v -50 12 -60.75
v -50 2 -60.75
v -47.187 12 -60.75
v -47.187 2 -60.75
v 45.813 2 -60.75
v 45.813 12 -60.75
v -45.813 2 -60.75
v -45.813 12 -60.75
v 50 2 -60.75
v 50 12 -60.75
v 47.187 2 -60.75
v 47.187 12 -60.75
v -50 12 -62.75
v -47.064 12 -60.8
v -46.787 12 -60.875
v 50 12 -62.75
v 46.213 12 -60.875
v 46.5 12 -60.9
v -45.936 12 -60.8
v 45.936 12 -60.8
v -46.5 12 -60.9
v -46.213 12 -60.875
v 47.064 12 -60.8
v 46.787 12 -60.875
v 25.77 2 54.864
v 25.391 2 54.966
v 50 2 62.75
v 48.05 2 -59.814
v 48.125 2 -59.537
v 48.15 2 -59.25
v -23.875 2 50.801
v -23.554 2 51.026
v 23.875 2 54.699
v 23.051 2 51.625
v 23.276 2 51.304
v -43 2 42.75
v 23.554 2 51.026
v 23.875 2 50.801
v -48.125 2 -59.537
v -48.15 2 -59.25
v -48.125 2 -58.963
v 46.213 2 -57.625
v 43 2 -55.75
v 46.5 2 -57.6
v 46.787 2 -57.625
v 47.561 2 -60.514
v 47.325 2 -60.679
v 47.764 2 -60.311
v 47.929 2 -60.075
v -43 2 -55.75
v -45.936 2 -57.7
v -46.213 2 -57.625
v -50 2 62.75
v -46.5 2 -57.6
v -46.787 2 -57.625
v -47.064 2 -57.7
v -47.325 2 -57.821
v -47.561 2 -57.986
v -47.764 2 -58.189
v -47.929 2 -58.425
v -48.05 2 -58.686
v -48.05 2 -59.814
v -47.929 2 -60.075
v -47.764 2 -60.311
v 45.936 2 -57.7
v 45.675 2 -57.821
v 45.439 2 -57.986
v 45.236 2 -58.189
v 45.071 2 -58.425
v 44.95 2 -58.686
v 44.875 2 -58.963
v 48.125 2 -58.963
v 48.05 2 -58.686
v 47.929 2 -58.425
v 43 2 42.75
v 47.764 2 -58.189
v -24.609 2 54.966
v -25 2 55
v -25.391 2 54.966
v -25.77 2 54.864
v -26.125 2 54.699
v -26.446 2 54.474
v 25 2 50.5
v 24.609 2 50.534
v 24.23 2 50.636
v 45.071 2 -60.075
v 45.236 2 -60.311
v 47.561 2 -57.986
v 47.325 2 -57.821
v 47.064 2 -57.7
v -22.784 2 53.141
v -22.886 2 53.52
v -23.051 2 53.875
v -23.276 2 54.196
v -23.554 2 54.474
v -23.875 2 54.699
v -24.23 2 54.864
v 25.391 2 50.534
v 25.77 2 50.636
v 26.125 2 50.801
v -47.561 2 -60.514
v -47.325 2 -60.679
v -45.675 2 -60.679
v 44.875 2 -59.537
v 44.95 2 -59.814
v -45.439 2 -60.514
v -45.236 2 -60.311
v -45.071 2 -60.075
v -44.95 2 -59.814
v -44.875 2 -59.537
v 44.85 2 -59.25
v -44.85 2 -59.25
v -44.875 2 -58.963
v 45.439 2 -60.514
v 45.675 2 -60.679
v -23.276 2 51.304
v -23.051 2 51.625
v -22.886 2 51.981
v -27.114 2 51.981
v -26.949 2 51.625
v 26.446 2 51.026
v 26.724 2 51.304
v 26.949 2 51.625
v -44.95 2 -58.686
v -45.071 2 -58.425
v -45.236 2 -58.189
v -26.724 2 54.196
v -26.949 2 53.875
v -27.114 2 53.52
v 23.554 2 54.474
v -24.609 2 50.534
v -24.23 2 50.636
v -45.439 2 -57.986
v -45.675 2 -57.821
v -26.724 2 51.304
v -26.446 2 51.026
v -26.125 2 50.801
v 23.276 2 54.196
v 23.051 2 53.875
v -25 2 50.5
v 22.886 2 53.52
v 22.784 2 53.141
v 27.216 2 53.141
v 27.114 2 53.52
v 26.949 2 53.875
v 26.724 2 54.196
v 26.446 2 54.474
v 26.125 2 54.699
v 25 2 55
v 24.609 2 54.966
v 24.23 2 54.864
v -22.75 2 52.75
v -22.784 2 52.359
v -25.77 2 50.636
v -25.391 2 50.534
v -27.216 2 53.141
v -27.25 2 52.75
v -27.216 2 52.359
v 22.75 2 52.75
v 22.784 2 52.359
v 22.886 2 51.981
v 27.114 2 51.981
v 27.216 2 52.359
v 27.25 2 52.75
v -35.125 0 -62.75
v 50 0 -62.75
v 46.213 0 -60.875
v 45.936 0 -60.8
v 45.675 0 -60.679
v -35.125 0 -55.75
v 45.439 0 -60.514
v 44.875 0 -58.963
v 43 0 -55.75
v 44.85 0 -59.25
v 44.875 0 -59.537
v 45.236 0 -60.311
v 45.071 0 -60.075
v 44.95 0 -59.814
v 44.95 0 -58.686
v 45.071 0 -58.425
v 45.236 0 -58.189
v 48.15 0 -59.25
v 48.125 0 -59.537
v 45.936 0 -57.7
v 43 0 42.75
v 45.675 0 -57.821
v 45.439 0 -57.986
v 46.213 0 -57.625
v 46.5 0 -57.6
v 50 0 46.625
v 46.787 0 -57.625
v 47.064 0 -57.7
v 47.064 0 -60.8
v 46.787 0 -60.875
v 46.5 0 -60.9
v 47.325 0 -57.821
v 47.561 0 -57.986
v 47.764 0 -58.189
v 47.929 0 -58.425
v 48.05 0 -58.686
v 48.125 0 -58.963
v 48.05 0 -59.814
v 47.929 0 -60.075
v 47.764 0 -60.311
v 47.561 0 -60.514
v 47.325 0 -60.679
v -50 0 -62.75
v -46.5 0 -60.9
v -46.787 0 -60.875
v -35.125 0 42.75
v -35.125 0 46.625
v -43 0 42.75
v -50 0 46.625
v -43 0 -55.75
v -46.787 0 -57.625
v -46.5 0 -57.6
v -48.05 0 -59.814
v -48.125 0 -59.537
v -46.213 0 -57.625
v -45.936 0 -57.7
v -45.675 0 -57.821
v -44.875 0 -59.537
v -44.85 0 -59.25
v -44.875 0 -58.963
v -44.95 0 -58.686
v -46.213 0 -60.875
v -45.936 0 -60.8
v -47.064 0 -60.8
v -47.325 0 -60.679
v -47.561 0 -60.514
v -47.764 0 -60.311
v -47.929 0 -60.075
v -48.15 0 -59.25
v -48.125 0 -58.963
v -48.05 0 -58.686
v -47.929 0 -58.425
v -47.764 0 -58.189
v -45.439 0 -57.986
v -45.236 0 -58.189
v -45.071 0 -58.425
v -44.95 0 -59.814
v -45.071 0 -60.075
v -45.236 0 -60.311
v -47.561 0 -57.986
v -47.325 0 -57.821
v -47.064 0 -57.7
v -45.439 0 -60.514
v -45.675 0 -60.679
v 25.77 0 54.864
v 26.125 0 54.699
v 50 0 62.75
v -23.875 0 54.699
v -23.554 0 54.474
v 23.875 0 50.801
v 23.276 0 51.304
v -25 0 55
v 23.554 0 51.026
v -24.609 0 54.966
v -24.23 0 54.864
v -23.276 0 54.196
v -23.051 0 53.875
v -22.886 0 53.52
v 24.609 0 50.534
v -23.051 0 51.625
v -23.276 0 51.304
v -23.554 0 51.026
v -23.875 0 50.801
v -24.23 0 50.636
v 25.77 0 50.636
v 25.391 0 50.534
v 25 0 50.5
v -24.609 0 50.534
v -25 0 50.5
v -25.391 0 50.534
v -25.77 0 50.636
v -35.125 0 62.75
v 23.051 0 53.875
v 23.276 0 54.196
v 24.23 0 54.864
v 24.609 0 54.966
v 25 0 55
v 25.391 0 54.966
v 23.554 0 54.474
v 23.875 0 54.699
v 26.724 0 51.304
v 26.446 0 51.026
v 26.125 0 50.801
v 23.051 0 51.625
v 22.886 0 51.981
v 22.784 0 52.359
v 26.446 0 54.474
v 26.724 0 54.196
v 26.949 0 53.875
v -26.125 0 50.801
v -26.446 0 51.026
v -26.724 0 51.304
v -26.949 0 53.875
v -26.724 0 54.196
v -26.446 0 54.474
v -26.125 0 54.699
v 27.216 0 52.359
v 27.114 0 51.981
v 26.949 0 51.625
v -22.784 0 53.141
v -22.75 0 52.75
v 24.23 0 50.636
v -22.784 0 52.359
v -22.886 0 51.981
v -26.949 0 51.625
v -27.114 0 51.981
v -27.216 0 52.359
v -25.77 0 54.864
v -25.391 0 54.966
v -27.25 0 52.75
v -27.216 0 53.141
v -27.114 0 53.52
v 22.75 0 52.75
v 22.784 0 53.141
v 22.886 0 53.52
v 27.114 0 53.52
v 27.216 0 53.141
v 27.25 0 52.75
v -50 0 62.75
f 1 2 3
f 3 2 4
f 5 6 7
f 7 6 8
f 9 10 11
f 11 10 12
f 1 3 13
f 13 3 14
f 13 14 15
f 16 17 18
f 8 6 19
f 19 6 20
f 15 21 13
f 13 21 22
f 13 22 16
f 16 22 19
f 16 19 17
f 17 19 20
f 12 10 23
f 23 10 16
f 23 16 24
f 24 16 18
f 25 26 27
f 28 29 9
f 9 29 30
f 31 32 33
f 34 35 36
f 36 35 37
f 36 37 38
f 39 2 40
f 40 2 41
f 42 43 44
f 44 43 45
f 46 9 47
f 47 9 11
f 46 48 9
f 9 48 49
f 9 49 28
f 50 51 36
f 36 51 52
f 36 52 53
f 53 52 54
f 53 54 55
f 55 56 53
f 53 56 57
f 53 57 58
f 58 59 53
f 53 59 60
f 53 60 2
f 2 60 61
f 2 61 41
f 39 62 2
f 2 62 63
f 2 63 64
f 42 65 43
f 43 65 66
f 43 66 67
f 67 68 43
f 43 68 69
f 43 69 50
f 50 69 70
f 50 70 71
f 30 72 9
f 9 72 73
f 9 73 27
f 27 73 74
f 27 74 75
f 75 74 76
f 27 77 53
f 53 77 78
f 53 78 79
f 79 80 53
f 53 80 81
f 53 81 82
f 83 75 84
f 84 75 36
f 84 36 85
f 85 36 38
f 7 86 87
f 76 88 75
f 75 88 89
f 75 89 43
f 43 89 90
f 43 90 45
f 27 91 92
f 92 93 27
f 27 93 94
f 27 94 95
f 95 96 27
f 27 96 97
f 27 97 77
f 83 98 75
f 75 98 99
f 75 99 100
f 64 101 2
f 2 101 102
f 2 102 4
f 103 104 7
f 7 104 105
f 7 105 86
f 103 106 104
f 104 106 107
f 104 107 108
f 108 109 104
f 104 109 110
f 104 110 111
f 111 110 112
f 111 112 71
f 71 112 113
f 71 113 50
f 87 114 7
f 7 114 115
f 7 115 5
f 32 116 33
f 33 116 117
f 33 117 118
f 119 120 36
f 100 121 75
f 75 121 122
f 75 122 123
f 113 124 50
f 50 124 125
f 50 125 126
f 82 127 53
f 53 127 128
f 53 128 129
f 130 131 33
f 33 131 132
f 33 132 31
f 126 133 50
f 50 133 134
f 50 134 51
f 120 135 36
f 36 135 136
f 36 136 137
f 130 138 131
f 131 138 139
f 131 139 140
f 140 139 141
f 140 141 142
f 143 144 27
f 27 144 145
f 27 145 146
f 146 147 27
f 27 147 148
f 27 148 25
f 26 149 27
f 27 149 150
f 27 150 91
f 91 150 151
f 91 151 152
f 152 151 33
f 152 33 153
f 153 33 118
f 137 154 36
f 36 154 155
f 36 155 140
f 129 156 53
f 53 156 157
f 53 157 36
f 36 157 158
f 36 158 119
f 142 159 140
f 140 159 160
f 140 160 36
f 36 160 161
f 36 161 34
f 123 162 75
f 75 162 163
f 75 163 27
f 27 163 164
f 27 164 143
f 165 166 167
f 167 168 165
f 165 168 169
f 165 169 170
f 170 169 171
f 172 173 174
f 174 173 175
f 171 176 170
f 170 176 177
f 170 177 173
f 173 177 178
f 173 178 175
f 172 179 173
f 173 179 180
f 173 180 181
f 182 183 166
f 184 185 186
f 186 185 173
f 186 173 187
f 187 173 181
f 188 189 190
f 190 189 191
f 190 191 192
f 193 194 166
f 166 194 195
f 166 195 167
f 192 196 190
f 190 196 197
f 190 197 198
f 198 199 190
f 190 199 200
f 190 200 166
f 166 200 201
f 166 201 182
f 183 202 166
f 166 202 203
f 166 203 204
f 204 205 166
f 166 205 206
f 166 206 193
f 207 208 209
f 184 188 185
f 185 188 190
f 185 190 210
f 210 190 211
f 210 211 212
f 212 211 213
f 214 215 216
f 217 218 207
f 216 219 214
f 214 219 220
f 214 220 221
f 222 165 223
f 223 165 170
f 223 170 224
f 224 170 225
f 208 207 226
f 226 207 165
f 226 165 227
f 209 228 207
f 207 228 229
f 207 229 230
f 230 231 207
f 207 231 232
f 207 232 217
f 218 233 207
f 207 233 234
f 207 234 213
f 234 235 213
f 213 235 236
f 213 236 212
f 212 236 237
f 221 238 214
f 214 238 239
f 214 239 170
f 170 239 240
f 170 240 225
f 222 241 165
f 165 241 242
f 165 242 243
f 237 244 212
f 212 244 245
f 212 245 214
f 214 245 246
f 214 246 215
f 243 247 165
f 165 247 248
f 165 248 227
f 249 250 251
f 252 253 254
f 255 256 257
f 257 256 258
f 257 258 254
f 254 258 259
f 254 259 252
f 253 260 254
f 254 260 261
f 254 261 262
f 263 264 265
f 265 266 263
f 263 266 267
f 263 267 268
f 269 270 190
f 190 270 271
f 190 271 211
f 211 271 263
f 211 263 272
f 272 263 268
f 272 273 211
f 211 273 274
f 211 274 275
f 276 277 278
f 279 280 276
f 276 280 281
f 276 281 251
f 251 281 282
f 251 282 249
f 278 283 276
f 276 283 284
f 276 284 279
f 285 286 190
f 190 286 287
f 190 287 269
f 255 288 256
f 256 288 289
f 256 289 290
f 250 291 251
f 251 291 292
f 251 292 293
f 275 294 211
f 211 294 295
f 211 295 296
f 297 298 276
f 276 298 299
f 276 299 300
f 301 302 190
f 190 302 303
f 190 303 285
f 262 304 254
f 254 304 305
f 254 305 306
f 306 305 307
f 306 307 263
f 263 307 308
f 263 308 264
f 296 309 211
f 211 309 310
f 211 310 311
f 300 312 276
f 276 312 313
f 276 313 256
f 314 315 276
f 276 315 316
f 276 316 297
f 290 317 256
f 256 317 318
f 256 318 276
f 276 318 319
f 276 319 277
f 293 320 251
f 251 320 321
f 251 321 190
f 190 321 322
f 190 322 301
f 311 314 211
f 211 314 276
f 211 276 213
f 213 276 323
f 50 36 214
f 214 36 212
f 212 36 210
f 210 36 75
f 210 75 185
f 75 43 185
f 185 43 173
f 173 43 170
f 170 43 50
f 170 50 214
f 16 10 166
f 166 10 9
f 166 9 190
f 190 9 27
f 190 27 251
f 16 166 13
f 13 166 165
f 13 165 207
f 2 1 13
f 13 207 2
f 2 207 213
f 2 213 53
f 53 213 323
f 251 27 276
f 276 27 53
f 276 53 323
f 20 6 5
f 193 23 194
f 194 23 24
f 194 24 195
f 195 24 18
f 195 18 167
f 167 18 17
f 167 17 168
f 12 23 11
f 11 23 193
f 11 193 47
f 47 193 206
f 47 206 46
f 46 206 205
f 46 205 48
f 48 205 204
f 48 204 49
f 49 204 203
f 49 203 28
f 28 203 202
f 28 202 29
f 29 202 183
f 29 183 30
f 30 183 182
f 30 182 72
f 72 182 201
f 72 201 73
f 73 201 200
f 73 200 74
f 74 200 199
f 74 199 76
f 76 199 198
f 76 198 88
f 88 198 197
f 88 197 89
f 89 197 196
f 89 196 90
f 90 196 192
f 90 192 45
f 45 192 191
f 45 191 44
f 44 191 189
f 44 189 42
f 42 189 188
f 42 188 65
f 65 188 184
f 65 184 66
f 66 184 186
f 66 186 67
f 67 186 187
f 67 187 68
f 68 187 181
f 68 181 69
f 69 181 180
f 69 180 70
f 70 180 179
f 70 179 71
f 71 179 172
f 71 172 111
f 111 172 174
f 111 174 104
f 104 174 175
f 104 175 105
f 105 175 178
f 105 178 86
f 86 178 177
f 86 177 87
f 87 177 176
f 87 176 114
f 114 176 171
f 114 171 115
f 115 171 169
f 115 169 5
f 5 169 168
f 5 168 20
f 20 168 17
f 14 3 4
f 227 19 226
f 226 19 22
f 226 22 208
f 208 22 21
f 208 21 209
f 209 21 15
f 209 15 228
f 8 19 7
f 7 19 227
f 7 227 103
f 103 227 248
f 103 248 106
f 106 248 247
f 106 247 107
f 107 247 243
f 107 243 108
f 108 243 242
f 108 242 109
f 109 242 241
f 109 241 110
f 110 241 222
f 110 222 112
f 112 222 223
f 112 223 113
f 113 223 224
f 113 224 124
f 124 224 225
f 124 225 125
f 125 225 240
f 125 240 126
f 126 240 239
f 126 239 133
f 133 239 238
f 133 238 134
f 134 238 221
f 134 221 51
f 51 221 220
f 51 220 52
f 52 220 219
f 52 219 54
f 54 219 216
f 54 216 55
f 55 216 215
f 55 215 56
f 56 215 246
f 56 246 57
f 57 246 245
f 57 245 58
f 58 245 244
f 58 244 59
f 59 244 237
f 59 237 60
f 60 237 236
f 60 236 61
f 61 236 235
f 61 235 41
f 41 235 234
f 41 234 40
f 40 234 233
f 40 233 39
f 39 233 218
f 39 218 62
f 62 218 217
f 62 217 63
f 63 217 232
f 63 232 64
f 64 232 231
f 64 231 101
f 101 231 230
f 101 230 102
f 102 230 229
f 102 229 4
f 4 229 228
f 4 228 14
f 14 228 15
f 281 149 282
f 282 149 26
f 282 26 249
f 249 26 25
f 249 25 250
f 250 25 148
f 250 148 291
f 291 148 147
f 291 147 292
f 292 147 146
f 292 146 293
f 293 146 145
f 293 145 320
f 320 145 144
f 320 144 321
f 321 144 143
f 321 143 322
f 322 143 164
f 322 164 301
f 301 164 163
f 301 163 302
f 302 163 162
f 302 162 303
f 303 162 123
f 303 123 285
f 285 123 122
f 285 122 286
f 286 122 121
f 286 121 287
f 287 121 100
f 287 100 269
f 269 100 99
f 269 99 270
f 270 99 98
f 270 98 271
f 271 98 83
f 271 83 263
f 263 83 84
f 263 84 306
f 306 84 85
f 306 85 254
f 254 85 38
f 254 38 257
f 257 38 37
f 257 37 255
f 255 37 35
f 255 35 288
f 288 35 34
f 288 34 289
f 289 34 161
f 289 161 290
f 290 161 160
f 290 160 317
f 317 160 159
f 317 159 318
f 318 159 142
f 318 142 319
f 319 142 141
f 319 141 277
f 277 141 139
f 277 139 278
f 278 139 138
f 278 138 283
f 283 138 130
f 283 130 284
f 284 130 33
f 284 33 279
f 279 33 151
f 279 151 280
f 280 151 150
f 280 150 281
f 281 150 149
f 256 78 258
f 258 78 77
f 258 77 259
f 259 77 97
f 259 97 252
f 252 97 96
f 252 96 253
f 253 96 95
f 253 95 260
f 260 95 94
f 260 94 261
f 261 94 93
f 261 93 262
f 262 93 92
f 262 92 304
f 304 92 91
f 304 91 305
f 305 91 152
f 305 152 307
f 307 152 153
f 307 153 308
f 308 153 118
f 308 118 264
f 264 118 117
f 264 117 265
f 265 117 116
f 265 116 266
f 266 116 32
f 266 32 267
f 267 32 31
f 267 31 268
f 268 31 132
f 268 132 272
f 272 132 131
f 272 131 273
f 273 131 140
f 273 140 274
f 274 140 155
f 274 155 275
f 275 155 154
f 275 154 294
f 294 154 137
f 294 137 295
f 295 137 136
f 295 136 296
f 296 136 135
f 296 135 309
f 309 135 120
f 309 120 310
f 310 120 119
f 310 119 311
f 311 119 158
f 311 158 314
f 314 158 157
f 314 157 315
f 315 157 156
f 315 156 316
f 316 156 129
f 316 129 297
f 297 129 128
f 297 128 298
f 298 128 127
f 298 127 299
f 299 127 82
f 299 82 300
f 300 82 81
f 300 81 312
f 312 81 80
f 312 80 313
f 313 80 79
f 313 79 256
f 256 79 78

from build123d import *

# Parameters (mm, degrees)
SKETCH1_W                      = 96
SKETCH1_H                      = 121.5
SKETCH1_W_2                    = 86
SKETCH1_H_2                    = 98.5
BOSS_EXTRUDE1_DEPTH            = 2
SKETCH2_W                      = 100
SKETCH2_H                      = 125.5
SKETCH2_W_2                    = 96
SKETCH2_H_2                    = 121.5
BOSS_EXTRUDE2_DEPTH            = 2
SKETCH8_W                      = 100
SKETCH8_H                      = 2
BOSS_EXTRUDE6_DEPTH            = 10
CUT_EXTRUDE1_REACH             = 14
SKETCH3_R                      = 2.25
SKETCH3_R_2                    = 1.65
CUT_EXTRUDE1_DIRECTION_2_DEPTH = 1


with BuildPart() as part:
    # Sketch1 → Boss-Extrude1 (new body)
    with BuildSketch(Plane(origin=(0, 0, 0), x_dir=(1, 0, 0), z_dir=(0, 1, 0))):
        Rectangle(SKETCH1_W, SKETCH1_H)
        with Locations((0, 6.5)):
            Rectangle(SKETCH1_W_2, SKETCH1_H_2, mode=Mode.SUBTRACT)
    extrude(amount=BOSS_EXTRUDE1_DEPTH)

    # Sketch2 → Boss-Extrude2 (add)
    with BuildSketch(Plane(origin=(0, 0, 0), x_dir=(1, 0, 0), z_dir=(0, 1, 0))):
        Rectangle(SKETCH2_W, SKETCH2_H)
        Rectangle(SKETCH2_W_2, SKETCH2_H_2, mode=Mode.SUBTRACT)
    extrude(amount=BOSS_EXTRUDE2_DEPTH)

    # Sketch8 → Boss-Extrude6 (add)
    with BuildSketch(Plane(origin=(0, 2, 0), x_dir=(1, 0, 0), z_dir=(0, 1, 0))):
        with Locations((0, 61.75)):
            Rectangle(SKETCH8_W, SKETCH8_H)
    extrude(amount=BOSS_EXTRUDE6_DEPTH)

    # Sketch3 → Cut-Extrude1 (cut, up to next)
    with BuildSketch(Plane.XZ, mode=Mode.PRIVATE) as cut_extrude1_sk1:
        with Locations((25, 52.75)):
            Circle(SKETCH3_R)
    cut_extrude1_tool1 = extrude(cut_extrude1_sk1.sketch, amount=-CUT_EXTRUDE1_REACH, mode=Mode.PRIVATE) & part.part
    add(cut_extrude1_tool1.solids().sort_by_distance((25, 0, 52.75))[0], mode=Mode.SUBTRACT)
    # Sketch3 → Cut-Extrude1 (cut, up to next)
    with BuildSketch(Plane.XZ, mode=Mode.PRIVATE) as cut_extrude1_sk2:
        with Locations((-25, 52.75)):
            Circle(SKETCH3_R)
    cut_extrude1_tool2 = extrude(cut_extrude1_sk2.sketch, amount=-CUT_EXTRUDE1_REACH, mode=Mode.PRIVATE) & part.part
    add(cut_extrude1_tool2.solids().sort_by_distance((-25, 0, 52.75))[0], mode=Mode.SUBTRACT)
    # Sketch3 → Cut-Extrude1 (cut, up to next)
    with BuildSketch(Plane.XZ, mode=Mode.PRIVATE) as cut_extrude1_sk3:
        with Locations((46.5, -59.25)):
            Circle(SKETCH3_R_2)
    cut_extrude1_tool3 = extrude(cut_extrude1_sk3.sketch, amount=-CUT_EXTRUDE1_REACH, mode=Mode.PRIVATE) & part.part
    add(cut_extrude1_tool3.solids().sort_by_distance((46.5, 0, -59.25))[0], mode=Mode.SUBTRACT)
    # Sketch3 → Cut-Extrude1 (cut, up to next)
    with BuildSketch(Plane.XZ, mode=Mode.PRIVATE) as cut_extrude1_sk4:
        with Locations((-46.5, -59.25)):
            Circle(SKETCH3_R_2)
    cut_extrude1_tool4 = extrude(cut_extrude1_sk4.sketch, amount=-CUT_EXTRUDE1_REACH, mode=Mode.PRIVATE) & part.part
    add(cut_extrude1_tool4.solids().sort_by_distance((-46.5, 0, -59.25))[0], mode=Mode.SUBTRACT)

    # Sketch3 → Cut-Extrude1 direction 2 (cut)
    with BuildSketch(Plane.XZ):
        with Locations((25, 52.75)):
            Circle(SKETCH3_R)
        with Locations((-25, 52.75)):
            Circle(SKETCH3_R)
        with Locations((46.5, -59.25)):
            Circle(SKETCH3_R_2)
        with Locations((-46.5, -59.25)):
            Circle(SKETCH3_R_2)
    extrude(amount=CUT_EXTRUDE1_DIRECTION_2_DEPTH, mode=Mode.SUBTRACT)


solid = part.part
